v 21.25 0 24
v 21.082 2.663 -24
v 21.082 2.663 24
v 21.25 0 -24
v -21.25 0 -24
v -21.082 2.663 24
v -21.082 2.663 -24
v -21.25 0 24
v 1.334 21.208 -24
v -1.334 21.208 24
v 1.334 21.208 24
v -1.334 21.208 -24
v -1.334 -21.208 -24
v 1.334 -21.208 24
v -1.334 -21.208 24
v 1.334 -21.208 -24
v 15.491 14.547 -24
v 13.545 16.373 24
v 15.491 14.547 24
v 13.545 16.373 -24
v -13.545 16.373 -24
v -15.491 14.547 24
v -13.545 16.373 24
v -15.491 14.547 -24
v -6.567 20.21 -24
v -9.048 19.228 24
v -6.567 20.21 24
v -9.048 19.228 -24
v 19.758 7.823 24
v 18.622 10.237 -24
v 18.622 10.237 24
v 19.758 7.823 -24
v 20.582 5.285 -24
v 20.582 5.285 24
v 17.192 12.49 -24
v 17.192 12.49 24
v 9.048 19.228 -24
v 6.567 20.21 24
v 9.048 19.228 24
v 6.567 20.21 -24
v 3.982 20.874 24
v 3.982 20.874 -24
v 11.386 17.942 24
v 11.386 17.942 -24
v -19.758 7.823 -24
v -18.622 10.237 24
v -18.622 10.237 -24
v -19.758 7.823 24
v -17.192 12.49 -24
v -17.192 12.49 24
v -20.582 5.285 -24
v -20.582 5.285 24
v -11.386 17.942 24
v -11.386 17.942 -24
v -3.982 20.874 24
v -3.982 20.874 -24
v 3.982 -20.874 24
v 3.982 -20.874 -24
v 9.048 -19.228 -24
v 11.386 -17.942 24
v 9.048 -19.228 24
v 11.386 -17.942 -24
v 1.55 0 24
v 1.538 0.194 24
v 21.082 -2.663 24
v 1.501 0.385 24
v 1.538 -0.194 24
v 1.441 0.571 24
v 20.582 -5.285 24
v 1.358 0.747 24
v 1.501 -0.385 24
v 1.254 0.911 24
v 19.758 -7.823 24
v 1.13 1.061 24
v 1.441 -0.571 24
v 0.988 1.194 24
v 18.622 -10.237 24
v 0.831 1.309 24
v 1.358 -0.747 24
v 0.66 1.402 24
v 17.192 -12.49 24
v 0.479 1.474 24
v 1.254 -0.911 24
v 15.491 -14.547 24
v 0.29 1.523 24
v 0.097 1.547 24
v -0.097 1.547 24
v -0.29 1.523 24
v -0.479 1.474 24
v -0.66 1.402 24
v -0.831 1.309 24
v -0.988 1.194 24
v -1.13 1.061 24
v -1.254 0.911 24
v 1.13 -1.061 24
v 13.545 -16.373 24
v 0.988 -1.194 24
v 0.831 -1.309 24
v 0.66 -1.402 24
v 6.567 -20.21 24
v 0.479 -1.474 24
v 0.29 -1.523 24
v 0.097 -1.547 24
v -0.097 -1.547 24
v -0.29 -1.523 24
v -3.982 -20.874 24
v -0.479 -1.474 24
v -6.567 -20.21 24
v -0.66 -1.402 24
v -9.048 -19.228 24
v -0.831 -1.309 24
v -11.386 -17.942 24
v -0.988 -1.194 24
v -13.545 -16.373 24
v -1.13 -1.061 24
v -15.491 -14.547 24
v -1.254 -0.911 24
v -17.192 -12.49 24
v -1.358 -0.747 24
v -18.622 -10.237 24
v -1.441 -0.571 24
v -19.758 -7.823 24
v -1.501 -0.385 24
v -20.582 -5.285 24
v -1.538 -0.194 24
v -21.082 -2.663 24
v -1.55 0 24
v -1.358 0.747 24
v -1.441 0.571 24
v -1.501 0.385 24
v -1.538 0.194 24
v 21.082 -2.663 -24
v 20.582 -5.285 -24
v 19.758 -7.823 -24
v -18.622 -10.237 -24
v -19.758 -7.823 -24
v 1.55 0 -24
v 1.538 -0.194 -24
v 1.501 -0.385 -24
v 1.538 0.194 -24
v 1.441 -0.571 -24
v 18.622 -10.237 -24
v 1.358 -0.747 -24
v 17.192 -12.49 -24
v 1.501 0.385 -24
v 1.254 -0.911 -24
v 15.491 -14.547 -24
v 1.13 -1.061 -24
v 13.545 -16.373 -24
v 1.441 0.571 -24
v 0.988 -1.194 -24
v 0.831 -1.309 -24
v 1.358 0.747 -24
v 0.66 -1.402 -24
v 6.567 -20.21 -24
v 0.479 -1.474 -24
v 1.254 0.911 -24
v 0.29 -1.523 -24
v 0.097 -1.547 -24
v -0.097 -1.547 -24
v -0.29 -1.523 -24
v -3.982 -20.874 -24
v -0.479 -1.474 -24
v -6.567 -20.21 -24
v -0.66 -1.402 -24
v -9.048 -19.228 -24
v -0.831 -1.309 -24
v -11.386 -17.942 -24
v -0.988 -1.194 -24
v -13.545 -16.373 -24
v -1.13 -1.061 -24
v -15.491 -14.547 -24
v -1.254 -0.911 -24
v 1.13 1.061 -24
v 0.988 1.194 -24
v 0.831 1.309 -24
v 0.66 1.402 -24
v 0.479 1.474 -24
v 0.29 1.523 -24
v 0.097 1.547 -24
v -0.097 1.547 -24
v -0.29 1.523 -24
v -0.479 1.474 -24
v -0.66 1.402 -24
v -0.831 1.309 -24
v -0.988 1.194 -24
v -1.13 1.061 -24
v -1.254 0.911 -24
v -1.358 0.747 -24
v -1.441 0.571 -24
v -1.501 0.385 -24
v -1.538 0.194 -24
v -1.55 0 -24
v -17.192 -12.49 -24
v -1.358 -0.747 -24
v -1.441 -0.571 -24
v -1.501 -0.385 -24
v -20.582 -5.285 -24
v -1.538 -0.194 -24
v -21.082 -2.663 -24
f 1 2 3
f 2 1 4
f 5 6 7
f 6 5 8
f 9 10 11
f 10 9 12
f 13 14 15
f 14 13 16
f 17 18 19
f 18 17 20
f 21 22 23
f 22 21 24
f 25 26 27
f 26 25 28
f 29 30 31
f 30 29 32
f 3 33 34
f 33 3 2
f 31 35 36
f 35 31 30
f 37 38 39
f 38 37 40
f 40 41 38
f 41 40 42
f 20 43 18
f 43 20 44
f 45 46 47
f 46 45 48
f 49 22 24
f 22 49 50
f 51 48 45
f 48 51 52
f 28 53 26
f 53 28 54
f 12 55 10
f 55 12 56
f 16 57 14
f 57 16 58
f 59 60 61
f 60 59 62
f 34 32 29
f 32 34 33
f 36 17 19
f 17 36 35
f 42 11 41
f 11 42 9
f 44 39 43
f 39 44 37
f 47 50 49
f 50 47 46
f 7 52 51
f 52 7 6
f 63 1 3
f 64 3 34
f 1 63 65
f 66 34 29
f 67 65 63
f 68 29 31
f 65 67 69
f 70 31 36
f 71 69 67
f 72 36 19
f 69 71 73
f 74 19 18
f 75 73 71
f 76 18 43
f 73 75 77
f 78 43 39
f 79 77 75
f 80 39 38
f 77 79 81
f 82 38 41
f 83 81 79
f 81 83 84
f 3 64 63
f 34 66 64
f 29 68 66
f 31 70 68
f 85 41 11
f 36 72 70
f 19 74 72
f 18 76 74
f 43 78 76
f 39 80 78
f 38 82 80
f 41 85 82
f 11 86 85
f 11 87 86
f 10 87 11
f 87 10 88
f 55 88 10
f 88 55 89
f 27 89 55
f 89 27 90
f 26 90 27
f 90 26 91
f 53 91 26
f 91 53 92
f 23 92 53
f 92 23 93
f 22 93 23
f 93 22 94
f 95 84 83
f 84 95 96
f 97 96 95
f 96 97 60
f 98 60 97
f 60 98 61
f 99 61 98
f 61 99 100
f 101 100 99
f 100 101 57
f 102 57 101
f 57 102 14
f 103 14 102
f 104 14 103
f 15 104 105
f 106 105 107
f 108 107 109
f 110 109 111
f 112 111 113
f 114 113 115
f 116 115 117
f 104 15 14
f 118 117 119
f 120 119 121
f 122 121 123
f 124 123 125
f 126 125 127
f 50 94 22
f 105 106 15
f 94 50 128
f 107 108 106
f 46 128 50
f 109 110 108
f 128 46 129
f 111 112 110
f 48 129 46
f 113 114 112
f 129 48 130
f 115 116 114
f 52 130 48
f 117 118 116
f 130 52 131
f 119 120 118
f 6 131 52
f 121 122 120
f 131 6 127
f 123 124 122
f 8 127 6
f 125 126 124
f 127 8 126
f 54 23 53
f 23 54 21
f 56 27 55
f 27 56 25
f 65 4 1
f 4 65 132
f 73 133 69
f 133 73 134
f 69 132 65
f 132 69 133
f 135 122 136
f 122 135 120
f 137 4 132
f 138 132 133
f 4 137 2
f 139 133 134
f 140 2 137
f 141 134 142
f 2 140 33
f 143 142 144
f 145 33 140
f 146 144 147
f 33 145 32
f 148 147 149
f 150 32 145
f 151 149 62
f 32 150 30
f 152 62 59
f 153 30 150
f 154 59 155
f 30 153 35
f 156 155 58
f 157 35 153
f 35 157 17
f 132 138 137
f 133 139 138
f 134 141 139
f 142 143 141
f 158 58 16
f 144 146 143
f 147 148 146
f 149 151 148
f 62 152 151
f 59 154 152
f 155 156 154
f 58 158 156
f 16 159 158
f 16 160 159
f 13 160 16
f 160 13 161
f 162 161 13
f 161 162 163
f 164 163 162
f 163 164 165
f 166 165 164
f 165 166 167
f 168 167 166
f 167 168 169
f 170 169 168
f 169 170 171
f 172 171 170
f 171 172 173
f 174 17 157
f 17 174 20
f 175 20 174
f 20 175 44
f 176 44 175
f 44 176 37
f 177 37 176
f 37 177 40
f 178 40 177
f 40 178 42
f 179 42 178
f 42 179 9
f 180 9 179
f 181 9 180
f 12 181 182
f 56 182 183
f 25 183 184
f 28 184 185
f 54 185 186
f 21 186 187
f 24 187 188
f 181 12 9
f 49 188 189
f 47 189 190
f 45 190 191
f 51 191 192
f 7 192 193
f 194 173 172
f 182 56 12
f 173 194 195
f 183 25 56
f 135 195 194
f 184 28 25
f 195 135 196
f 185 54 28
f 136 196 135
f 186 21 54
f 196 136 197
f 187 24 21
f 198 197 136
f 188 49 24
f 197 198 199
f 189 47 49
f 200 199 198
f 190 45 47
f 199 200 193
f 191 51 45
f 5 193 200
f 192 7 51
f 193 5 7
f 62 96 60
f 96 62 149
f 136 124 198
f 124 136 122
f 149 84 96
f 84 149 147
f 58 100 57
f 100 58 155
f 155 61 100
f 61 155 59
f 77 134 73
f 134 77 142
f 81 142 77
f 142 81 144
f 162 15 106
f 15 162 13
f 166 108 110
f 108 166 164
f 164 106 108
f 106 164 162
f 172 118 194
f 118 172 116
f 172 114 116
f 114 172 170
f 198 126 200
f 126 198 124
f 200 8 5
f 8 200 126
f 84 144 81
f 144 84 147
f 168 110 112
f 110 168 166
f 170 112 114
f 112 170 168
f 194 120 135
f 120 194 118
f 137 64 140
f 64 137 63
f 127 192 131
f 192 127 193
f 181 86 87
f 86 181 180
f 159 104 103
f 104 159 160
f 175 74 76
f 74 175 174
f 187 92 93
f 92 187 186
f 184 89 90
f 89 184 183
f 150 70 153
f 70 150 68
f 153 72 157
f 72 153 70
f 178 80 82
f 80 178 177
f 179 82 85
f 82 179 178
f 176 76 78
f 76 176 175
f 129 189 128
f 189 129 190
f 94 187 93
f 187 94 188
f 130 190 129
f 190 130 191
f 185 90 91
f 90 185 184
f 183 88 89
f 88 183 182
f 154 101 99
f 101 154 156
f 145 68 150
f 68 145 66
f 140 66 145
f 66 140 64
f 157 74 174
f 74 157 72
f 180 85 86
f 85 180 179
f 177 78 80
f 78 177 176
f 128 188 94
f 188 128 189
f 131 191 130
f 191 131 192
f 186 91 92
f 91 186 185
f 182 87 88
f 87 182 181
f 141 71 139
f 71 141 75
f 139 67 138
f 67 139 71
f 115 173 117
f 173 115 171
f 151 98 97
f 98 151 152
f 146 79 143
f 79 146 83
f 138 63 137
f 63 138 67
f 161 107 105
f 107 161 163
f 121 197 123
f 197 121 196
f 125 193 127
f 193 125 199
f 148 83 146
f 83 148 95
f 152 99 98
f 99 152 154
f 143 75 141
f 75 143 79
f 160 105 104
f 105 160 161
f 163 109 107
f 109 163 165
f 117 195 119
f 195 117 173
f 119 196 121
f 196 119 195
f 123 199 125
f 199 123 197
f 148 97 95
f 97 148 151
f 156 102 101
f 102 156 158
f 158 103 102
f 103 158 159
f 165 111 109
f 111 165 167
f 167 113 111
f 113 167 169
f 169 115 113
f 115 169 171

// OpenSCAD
$fn = 50;


difference() {
	union() {
		translate(v = [0, 0, -24.0000000000]) {
			cylinder(h = 48, r = 21.2500000000);
		}
	}
	union() {
		translate(v = [0, 0, -100.0000000000]) {
			cylinder(h = 200, r = 1.5500000000);
		}
	}
}
